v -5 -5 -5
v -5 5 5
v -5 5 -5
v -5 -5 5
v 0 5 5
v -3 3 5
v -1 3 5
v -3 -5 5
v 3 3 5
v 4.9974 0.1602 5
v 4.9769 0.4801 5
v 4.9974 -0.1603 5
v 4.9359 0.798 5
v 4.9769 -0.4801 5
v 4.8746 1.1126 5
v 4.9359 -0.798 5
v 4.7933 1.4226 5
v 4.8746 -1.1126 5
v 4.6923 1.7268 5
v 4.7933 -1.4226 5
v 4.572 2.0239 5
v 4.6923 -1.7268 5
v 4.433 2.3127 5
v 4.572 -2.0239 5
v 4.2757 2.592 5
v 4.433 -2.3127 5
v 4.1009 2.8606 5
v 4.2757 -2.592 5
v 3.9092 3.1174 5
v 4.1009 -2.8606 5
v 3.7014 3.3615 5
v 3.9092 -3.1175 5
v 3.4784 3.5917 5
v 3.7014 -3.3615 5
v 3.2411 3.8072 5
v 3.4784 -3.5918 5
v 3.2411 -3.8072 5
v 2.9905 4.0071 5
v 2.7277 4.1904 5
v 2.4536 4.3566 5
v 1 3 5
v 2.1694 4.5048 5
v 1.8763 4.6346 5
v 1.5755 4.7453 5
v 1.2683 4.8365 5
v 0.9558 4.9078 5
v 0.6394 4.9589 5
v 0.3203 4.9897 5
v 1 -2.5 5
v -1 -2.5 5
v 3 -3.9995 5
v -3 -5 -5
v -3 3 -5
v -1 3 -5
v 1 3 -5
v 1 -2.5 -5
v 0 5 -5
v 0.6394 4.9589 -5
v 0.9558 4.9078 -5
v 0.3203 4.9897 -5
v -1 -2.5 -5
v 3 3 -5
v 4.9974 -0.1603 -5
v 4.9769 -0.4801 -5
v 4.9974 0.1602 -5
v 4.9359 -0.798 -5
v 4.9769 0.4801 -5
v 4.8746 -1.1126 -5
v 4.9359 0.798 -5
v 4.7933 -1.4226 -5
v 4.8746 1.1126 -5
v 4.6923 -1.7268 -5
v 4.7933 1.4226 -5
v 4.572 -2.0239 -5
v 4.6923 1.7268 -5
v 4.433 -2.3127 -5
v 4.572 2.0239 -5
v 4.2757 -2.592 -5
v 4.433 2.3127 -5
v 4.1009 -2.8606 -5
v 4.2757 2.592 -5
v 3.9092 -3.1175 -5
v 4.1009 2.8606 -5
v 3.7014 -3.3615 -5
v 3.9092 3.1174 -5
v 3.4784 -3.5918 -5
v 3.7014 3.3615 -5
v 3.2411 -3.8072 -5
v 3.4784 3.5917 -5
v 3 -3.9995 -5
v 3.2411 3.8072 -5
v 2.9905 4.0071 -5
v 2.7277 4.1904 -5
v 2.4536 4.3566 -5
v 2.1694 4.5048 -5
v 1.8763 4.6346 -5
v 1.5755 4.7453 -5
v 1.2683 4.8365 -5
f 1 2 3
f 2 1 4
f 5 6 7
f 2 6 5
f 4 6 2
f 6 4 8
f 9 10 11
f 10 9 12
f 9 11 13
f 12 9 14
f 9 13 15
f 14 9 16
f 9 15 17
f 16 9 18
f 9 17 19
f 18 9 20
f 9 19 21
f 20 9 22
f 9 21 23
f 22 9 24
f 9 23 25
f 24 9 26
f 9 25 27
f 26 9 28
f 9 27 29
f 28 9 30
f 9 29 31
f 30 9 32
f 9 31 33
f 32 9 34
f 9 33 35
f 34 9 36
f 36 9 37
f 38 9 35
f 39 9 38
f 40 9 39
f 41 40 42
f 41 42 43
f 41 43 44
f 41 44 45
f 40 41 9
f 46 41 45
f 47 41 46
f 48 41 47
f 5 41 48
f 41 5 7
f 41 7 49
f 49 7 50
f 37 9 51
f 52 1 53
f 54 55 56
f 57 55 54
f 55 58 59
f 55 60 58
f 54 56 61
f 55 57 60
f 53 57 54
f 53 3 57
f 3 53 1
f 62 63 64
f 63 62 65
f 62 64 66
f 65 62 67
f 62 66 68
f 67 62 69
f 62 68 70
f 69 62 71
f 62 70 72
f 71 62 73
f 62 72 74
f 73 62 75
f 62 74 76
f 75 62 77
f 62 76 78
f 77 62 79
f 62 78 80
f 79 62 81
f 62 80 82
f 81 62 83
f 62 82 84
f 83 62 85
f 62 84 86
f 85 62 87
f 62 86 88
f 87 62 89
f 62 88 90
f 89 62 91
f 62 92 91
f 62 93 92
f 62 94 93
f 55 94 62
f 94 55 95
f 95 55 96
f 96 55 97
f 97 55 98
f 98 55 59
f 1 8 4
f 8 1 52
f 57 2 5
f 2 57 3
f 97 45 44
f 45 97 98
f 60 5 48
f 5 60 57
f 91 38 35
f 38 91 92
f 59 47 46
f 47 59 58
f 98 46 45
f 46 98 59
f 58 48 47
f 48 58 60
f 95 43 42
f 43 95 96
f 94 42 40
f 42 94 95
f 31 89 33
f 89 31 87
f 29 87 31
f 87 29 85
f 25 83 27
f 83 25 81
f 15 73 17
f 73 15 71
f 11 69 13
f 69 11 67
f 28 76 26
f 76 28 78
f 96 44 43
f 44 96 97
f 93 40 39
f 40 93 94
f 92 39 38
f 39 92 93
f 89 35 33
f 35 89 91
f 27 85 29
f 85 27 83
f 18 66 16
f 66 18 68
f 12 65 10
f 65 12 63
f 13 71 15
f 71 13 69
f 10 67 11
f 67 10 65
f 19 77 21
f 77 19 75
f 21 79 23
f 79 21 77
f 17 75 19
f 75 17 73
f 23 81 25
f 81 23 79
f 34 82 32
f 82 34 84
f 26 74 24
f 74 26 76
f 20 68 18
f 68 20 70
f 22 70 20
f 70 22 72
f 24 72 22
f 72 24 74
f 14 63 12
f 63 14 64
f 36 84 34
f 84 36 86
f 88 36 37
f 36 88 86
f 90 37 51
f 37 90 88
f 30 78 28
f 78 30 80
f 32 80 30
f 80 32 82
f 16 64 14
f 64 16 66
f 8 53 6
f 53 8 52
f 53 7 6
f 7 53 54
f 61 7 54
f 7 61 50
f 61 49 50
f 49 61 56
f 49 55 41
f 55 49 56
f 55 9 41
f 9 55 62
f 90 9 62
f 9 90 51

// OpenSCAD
// Generated by SolidPython 1.1.3 on 2025-02-20 04:04:06
$fn=50;


intersection() {
	translate(v = [-5.0000000000, -5.0000000000, -5.0000000000]) {
		linear_extrude(height = 10) {
			polygon(points = [[5.0000000000, 10.0000000000], [5.3203510999, 9.9897269638], [5.6393858084, 9.9589500691], [5.9557931435, 9.9077957850], [6.2682729195, 9.8364743152], [6.5755410901, 9.7452787351], [6.8763350244, 9.6345837867], [7.1694186956, 9.5048443395], [7.4535877600, 9.3565935206], [7.7276745061, 9.1904405245], [7.9905526525, 9.0070681093], [8.2411419765, 8.8072297918], [8.4784127530, 8.5917467505], [8.7013899854, 8.3615044513], [8.9091574123, 8.1174490093], [9.1008612730, 7.8605833006], [9.2757138150, 7.5919628416], [9.4329965319, 7.3126914512], [9.5720631151, 7.0239167156], [9.6923421102, 6.7268252721], [9.7933392652, 6.4226379332], [9.8746395609, 6.1126046698], [9.9359089171, 5.7979994752], [9.9768955647, 5.4801151295], [9.9974310810, 5.1602578879], [9.9974310810, 4.8397421121], [9.9768955647, 4.5198848705], [9.9359089171, 4.2020005248], [9.8746395609, 3.8873953302], [9.7933392652, 3.5773620668], [9.6923421102, 3.2731747279], [9.5720631151, 2.9760832844], [9.4329965319, 2.6873085488], [9.2757138150, 2.4080371584], [9.1008612730, 2.1394166994], [8.9091574123, 1.8825509907], [8.7013899854, 1.6384955487], [8.4784127530, 1.4082532495], [8.2411419765, 1.1927702082], [7.9905526525, 0.9929318907], [7.7276745061, 0.8095594755], [7.4535877600, 0.6434064794], [7.1694186956, 0.4951556605], [6.8763350244, 0.3654162133], [6.5755410901, 0.2547212649], [6.2682729195, 0.1635256848], [5.9557931435, 0.0922042150], [5.6393858084, 0.0410499309], [5.3203510999, 0.0102730362], [5.0000000000, 0.0000000000], [0, 0], [0, 10]]);
		}
	}
	rotate(a = -90, v = [0, 0, 1]) {
		translate(v = [-5.0000000000, -5.0000000000, -5.0000000000]) {
			linear_extrude(height = 10) {
				polygon(points = [[0, 0], [10, 0], [10, 2.0000000000], [2.0000000000, 2.0000000000], [2.0000000000, 4.0000000000], [7.5000000000, 4.0000000000], [7.5000000000, 6.0000000000], [2.0000000000, 6.0000000000], [2.0000000000, 8.0000000000], [10, 8.0000000000], [10, 10], [0, 10]]);
			}
		}
	}
}
/***********************************************
*********      SolidPython code:      **********
************************************************
 
from solid import *
from solid.utils import *

import math
import matplotlib.pyplot as plt
import subprocess
import os

class Hole:
    def __init__(self, x, y, radius):
        """
        Hole defined by:
        :param x: x dimension for center point of the circle as a ratio of letter height
        :param y: y dimension for center point of the circle as a ratio of letter height
        :param radius: radius of circle as a ratio of letter height
        """
        self.x = x
        self.y = y
        self.radius = radius

class Letter3D:
    def __init__(self, name, outer_shape_points, height, holes=None):
        """
        3D Letter defined by:
        :param name: name of letter
        :param outer_shape_points: points defining the outer shape of the letter
        :param heigh: size of cube that letter fits inside
        :param holes: list of Holes
        """
        self.name = name
        self.outer_shape_points = outer_shape_points
        self.holes = holes if holes is None else []
        self.height = height


    def generate(self):
        shape = polygon(points=self.outer_shape_points)

        if self.holes:
            for hole in self.holes:
                circle_hole = circle(r=hole.radius*self.height)
                positioned_hole = translate([hole.x*self.height, hole.y*self.height])(circle_hole)
                shape = difference()(shape, positioned_hole)
        
        shape_3d = linear_extrude(height=self.height)(shape)
        shape_3d = translate([-self.height/2, -self.height/2, -self.height/2])(shape_3d)
        return shape_3d
    
    def render(self):
        scad_render_to_file(self.shape, f"output/{self.name}.scad", file_header='$fn=50;')
        subprocess.run(["C:\\Program Files\\OpenSCAD\\openscad.exe", "-o", f"output\\{self.name}.stl", f"output\\{self.name}.scad"])


class TwoLetter3D:
    def __init__(self, height, letterA, letterA_face, letterB=None, letterB_face=None):
        self.height = height
        self.letterA = letterA
        self.letterB = letterB
        self.letterA_face = letterA_face
        self.letterB_face = letterB_face

    def call_letter_generation(self, letter):
        letter = letter.upper()
        function_name = f"letter_{letter}"
        func = globals().get(function_name)
        if func is None:
            raise ValueError(f"No letter generation function defined for letter '{letter}'.")
        else:
            print(func)
        return func(self.height)
    
    def rotate_object(self, face, shape):
        face = face.lower()
        if face == "z":
            return shape
        if face == "x":
            return rotate(a=90, v=[0,1,0])(shape)
        if face == "y":
            return rotate(a=-90, v=[0,0,1])(shape)
        else:
            raise ValueError("Face must be one of 'x', 'y', or 'z'.")

    def render(self):
        if self.letterA:
            letterA3D = self.call_letter_generation(self.letterA)
            letterA3D = self.rotate_object(self.letterA_face, letterA3D)

        if self.letterB:
            letterB3D = self.call_letter_generation(self.letterB)
            letterB3D = self.rotate_object(self.letterB_face, letterB3D)
            combined = intersection()(letterA3D, letterB3D)
            file_name = self.letterA + self.letterB
            scad_render_to_file(combined, f"output/{file_name}.scad", file_header='$fn=50;')
            subprocess.run(["C:\\Program Files\\OpenSCAD\\openscad.exe", "-o", f"output\\{file_name}.stl", f"output\\{file_name}.scad"])
            return
        else:
            file_name = self.letterA
            scad_render_to_file(letterA3D, f"output/{file_name}.scad", file_header='$fn=50;')
            subprocess.run(["C:\\Program Files\\OpenSCAD\\openscad.exe", "-o", f"output\\{file_name}.stl", f"output\\{file_name}.scad"])
    
                

def arc_points(radius, start_angle, end_angle, center=[0,0], num_points=50):
    angles = [start_angle + i * (end_angle - start_angle) / (num_points - 1)
              for i in range(num_points)]
    points = [
        (center[0] + radius * math.cos(math.radians(angle)),
         center[1] + radius * math.sin(math.radians(angle)))
        for angle in angles
    ]
    return points

def letter_A(h):
    shape_points = [(0,0), (h/2, h), (h, 0), (5/6*h, 0), (2/3*h, 1/3*h), (1/3*h, 1/3*h), (h/6, 0)]
    holes = [Hole(1/2, 7/12, 1/6)]
    A = Letter3D("A", shape_points, h, holes)
    return A.generate()

def letter_B(h):
    top_arc_points = arc_points(h/4, 90, -90, center=[3/4*h, 3/4*h])
    bottom_arc_points = arc_points(h/4, 90, -90, center=[3/4*h, h/4])
    other_points = [(0,0),(0,h)]

    shape_points = top_arc_points + bottom_arc_points + other_points
    holes = [Hole(1/2, 3/4, 1/6), Hole(1/2, 1/4, 1/6)]
    B = Letter3D("B", shape_points, h, holes)
    return B.generate()

def letter_C(h):
    outer_arc_points = arc_points(h/2, 30, 330, center=[h/2,h/2])
    inner_arc_points = arc_points(h/4, 30, 330, center=[h/2,h/2])[::-1]
    shape_points = outer_arc_points + inner_arc_points
    # print(shape_points)
    C = Letter3D("C", shape_points, h)
    return C.generate()


def letter_D(h):
    outer_arc_points = arc_points(h/2, 90, -90, center= [h/2, h/2])
    shape_points = outer_arc_points + [(0,0), (0, h)]
    holes = [Hole(1/2, 1/2, 1/6)]
    D = Letter3D("D", shape_points, h, holes)
    return D.generate()

def letter_E(h):
    points = [(0,0), (h,0), (h,h/5), (h/5,h/5), (h/5,2/5*h), (3/4*h,2/5*h), (3/4*h,3/5*h), (h/5,3/5*h), (h/5,4/5*h), (h,4/5*h), (h,h), (0,h)]
    E = Letter3D("E", points, h)
    return E.generate()

def letter_F(h):
    points = [(0,0), (h/5,0), (h/5,2/5*h), (3/4*h,2/5*h), (3/4*h,3/5*h), (h/5,3/5*h), (h/5,4/5*h), (h,4/5*h), (h,h), (0,h)]
    F = Letter3D("F", points, h)
    return F.generate()

if __name__ == "__main__":
    os.makedirs("output", exist_ok=True)
    
    letters = [chr(x) for x in range(ord('A'), ord('F') + 1)]
    for letter in letters:
        for other_letter in letters:
            shape = TwoLetter3D(10, letter, "z", other_letter, "y")
            shape.render()
 
 
************************************************/
